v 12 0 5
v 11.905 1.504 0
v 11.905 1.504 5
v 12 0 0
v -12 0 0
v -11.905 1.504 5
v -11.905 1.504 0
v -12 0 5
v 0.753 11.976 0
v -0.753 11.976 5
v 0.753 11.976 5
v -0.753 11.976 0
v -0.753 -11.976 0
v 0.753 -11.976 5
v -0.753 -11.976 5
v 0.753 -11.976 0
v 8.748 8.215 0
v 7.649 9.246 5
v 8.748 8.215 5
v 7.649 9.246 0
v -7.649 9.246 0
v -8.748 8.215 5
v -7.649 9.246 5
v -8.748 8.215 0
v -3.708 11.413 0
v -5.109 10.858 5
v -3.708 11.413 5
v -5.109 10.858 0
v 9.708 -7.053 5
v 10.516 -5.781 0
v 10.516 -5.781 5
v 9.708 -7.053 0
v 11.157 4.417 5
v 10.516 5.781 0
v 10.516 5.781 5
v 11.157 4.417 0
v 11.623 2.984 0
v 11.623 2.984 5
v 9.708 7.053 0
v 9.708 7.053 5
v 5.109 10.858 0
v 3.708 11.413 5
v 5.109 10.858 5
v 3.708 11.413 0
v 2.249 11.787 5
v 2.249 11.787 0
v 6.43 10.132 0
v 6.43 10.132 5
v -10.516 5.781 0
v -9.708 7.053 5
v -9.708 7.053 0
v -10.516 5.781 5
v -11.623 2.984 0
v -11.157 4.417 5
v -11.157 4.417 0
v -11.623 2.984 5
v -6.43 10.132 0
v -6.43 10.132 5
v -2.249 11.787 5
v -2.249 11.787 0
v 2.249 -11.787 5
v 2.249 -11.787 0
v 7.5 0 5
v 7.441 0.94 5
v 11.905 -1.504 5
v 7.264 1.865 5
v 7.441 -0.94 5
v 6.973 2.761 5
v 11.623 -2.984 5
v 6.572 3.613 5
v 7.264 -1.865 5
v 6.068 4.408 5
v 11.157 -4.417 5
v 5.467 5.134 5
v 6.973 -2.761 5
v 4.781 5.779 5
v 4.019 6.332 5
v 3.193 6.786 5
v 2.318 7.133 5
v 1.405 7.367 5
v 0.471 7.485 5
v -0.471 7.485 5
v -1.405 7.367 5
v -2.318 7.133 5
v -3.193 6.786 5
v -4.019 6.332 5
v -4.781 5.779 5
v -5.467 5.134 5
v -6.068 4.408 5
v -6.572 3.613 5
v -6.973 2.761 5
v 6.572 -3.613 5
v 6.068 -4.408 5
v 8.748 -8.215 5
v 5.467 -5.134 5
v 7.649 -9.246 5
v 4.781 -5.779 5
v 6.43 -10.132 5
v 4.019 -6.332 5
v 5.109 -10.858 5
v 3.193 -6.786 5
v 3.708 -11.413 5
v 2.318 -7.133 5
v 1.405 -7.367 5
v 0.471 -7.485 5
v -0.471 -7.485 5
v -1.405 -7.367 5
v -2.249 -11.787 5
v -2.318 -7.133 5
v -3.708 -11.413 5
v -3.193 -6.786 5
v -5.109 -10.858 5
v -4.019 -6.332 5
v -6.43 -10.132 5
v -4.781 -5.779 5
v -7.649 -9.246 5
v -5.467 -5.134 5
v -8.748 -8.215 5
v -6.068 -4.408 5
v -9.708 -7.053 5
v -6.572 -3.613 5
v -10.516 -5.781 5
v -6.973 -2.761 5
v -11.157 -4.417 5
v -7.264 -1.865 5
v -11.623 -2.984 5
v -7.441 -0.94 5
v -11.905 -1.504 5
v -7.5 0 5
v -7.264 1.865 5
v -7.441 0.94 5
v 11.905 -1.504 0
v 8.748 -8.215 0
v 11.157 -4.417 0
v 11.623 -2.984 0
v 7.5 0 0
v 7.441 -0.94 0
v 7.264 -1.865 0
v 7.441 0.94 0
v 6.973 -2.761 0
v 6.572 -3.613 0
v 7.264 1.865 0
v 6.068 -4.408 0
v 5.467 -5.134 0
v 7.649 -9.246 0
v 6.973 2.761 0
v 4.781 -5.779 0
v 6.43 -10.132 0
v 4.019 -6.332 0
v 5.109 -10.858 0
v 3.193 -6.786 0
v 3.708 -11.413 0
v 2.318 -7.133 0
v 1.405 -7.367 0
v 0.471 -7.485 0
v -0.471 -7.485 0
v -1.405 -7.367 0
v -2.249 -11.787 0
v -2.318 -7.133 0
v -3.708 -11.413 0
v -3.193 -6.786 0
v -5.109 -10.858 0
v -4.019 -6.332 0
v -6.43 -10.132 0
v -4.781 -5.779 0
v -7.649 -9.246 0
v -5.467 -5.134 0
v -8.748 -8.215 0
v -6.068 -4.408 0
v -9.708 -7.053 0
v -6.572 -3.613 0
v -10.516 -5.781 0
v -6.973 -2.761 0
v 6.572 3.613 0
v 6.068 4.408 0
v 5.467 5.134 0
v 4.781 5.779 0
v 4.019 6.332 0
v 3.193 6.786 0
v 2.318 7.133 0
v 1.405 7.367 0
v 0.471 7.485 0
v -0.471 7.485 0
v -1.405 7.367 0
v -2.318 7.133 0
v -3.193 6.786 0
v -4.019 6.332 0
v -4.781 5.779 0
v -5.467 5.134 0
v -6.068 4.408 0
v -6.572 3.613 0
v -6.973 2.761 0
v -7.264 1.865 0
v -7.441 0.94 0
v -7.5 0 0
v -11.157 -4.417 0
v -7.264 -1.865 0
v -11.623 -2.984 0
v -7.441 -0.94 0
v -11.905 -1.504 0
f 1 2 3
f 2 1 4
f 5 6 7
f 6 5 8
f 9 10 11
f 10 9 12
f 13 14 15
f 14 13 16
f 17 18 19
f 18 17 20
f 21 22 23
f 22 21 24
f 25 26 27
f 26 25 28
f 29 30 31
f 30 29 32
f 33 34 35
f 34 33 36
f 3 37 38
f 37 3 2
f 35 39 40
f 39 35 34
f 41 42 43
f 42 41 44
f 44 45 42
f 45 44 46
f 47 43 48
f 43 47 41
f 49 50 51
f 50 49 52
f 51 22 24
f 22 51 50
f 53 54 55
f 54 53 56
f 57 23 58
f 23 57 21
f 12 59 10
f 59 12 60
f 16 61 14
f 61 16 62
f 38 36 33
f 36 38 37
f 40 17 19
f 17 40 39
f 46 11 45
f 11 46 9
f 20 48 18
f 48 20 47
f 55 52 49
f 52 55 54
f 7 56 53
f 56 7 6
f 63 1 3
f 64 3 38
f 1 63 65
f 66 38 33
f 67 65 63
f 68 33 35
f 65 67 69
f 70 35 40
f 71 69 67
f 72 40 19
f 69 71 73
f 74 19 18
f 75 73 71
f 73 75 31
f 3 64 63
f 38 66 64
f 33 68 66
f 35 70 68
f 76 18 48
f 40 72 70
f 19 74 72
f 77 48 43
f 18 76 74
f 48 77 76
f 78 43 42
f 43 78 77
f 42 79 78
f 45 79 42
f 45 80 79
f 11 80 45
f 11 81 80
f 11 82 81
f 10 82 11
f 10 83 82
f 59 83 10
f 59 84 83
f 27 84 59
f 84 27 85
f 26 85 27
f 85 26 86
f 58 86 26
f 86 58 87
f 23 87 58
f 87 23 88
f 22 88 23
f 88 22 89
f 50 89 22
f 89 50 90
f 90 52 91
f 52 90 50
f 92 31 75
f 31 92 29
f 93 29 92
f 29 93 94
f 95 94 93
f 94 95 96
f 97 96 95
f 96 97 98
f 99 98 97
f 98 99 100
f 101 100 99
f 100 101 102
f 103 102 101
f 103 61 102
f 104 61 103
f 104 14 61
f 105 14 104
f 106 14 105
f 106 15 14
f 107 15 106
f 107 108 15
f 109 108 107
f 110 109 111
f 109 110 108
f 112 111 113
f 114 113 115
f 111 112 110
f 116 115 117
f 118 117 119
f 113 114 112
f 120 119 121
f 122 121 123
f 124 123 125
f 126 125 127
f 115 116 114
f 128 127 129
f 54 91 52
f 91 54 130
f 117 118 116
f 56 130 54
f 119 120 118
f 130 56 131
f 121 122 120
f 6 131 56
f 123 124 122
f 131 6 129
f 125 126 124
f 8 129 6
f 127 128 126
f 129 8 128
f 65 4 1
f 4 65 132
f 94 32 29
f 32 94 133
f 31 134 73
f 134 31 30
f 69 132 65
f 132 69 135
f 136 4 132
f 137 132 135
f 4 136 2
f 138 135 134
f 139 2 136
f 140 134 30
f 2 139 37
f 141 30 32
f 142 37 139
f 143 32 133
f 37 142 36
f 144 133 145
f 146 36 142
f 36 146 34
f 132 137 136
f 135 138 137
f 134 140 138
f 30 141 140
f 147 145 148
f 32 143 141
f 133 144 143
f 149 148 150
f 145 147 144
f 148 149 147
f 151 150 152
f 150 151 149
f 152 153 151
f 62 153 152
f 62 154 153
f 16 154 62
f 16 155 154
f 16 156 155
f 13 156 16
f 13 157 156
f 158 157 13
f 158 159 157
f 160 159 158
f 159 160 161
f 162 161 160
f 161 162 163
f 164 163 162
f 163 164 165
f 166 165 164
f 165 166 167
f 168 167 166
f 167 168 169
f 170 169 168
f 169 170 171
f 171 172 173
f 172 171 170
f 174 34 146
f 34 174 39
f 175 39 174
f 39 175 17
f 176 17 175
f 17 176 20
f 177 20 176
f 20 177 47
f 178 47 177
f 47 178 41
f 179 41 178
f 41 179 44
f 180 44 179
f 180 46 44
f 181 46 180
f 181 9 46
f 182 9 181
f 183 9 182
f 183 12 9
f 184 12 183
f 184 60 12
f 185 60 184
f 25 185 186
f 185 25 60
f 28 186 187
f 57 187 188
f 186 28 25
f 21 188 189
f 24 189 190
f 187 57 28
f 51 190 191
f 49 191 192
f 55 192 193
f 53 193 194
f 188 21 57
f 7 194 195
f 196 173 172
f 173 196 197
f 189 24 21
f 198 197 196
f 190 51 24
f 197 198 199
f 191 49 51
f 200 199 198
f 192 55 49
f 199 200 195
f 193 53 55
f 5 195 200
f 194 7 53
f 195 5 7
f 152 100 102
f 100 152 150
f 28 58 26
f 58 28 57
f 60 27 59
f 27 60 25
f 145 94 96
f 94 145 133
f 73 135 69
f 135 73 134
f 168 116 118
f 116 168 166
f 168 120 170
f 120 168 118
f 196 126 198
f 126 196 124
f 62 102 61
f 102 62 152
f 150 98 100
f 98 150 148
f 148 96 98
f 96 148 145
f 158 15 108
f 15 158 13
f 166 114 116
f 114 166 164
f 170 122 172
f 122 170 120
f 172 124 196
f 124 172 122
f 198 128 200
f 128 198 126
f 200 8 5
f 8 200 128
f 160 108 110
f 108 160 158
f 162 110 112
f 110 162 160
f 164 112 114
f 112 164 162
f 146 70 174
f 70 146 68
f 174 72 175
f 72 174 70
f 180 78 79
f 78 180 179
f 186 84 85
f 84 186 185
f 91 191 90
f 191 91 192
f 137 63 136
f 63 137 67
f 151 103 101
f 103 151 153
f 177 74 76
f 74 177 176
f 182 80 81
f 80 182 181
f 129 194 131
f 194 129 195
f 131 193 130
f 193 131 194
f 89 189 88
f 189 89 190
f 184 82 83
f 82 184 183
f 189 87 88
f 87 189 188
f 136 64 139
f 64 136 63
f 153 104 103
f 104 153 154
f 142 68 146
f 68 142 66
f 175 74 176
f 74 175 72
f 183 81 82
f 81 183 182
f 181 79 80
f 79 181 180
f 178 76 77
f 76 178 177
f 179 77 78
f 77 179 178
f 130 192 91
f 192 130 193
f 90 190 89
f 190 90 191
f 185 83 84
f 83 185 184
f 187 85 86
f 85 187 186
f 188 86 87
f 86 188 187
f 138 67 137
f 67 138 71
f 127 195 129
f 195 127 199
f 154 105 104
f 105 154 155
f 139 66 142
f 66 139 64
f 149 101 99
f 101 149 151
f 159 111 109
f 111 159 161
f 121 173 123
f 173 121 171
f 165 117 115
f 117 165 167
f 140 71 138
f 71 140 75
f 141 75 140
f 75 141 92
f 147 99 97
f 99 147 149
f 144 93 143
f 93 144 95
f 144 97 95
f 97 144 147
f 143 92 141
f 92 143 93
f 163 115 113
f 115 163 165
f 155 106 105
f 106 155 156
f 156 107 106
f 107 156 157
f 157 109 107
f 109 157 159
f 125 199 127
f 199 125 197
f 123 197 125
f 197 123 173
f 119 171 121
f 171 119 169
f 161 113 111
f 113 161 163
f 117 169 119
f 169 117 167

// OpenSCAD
$fn = 50;


difference() {
	union() {
		translate(v = [0, 0, 0]) {
			rotate(a = [0, 0, 0]) {
				cylinder(h = 5, r = 12.0000000000);
			}
		}
	}
	union() {
		translate(v = [0, 0, 0]) {
			rotate(a = [0, 0, 0]) {
				cylinder(h = 5, r = 7.5000000000);
			}
		}
	}
}
